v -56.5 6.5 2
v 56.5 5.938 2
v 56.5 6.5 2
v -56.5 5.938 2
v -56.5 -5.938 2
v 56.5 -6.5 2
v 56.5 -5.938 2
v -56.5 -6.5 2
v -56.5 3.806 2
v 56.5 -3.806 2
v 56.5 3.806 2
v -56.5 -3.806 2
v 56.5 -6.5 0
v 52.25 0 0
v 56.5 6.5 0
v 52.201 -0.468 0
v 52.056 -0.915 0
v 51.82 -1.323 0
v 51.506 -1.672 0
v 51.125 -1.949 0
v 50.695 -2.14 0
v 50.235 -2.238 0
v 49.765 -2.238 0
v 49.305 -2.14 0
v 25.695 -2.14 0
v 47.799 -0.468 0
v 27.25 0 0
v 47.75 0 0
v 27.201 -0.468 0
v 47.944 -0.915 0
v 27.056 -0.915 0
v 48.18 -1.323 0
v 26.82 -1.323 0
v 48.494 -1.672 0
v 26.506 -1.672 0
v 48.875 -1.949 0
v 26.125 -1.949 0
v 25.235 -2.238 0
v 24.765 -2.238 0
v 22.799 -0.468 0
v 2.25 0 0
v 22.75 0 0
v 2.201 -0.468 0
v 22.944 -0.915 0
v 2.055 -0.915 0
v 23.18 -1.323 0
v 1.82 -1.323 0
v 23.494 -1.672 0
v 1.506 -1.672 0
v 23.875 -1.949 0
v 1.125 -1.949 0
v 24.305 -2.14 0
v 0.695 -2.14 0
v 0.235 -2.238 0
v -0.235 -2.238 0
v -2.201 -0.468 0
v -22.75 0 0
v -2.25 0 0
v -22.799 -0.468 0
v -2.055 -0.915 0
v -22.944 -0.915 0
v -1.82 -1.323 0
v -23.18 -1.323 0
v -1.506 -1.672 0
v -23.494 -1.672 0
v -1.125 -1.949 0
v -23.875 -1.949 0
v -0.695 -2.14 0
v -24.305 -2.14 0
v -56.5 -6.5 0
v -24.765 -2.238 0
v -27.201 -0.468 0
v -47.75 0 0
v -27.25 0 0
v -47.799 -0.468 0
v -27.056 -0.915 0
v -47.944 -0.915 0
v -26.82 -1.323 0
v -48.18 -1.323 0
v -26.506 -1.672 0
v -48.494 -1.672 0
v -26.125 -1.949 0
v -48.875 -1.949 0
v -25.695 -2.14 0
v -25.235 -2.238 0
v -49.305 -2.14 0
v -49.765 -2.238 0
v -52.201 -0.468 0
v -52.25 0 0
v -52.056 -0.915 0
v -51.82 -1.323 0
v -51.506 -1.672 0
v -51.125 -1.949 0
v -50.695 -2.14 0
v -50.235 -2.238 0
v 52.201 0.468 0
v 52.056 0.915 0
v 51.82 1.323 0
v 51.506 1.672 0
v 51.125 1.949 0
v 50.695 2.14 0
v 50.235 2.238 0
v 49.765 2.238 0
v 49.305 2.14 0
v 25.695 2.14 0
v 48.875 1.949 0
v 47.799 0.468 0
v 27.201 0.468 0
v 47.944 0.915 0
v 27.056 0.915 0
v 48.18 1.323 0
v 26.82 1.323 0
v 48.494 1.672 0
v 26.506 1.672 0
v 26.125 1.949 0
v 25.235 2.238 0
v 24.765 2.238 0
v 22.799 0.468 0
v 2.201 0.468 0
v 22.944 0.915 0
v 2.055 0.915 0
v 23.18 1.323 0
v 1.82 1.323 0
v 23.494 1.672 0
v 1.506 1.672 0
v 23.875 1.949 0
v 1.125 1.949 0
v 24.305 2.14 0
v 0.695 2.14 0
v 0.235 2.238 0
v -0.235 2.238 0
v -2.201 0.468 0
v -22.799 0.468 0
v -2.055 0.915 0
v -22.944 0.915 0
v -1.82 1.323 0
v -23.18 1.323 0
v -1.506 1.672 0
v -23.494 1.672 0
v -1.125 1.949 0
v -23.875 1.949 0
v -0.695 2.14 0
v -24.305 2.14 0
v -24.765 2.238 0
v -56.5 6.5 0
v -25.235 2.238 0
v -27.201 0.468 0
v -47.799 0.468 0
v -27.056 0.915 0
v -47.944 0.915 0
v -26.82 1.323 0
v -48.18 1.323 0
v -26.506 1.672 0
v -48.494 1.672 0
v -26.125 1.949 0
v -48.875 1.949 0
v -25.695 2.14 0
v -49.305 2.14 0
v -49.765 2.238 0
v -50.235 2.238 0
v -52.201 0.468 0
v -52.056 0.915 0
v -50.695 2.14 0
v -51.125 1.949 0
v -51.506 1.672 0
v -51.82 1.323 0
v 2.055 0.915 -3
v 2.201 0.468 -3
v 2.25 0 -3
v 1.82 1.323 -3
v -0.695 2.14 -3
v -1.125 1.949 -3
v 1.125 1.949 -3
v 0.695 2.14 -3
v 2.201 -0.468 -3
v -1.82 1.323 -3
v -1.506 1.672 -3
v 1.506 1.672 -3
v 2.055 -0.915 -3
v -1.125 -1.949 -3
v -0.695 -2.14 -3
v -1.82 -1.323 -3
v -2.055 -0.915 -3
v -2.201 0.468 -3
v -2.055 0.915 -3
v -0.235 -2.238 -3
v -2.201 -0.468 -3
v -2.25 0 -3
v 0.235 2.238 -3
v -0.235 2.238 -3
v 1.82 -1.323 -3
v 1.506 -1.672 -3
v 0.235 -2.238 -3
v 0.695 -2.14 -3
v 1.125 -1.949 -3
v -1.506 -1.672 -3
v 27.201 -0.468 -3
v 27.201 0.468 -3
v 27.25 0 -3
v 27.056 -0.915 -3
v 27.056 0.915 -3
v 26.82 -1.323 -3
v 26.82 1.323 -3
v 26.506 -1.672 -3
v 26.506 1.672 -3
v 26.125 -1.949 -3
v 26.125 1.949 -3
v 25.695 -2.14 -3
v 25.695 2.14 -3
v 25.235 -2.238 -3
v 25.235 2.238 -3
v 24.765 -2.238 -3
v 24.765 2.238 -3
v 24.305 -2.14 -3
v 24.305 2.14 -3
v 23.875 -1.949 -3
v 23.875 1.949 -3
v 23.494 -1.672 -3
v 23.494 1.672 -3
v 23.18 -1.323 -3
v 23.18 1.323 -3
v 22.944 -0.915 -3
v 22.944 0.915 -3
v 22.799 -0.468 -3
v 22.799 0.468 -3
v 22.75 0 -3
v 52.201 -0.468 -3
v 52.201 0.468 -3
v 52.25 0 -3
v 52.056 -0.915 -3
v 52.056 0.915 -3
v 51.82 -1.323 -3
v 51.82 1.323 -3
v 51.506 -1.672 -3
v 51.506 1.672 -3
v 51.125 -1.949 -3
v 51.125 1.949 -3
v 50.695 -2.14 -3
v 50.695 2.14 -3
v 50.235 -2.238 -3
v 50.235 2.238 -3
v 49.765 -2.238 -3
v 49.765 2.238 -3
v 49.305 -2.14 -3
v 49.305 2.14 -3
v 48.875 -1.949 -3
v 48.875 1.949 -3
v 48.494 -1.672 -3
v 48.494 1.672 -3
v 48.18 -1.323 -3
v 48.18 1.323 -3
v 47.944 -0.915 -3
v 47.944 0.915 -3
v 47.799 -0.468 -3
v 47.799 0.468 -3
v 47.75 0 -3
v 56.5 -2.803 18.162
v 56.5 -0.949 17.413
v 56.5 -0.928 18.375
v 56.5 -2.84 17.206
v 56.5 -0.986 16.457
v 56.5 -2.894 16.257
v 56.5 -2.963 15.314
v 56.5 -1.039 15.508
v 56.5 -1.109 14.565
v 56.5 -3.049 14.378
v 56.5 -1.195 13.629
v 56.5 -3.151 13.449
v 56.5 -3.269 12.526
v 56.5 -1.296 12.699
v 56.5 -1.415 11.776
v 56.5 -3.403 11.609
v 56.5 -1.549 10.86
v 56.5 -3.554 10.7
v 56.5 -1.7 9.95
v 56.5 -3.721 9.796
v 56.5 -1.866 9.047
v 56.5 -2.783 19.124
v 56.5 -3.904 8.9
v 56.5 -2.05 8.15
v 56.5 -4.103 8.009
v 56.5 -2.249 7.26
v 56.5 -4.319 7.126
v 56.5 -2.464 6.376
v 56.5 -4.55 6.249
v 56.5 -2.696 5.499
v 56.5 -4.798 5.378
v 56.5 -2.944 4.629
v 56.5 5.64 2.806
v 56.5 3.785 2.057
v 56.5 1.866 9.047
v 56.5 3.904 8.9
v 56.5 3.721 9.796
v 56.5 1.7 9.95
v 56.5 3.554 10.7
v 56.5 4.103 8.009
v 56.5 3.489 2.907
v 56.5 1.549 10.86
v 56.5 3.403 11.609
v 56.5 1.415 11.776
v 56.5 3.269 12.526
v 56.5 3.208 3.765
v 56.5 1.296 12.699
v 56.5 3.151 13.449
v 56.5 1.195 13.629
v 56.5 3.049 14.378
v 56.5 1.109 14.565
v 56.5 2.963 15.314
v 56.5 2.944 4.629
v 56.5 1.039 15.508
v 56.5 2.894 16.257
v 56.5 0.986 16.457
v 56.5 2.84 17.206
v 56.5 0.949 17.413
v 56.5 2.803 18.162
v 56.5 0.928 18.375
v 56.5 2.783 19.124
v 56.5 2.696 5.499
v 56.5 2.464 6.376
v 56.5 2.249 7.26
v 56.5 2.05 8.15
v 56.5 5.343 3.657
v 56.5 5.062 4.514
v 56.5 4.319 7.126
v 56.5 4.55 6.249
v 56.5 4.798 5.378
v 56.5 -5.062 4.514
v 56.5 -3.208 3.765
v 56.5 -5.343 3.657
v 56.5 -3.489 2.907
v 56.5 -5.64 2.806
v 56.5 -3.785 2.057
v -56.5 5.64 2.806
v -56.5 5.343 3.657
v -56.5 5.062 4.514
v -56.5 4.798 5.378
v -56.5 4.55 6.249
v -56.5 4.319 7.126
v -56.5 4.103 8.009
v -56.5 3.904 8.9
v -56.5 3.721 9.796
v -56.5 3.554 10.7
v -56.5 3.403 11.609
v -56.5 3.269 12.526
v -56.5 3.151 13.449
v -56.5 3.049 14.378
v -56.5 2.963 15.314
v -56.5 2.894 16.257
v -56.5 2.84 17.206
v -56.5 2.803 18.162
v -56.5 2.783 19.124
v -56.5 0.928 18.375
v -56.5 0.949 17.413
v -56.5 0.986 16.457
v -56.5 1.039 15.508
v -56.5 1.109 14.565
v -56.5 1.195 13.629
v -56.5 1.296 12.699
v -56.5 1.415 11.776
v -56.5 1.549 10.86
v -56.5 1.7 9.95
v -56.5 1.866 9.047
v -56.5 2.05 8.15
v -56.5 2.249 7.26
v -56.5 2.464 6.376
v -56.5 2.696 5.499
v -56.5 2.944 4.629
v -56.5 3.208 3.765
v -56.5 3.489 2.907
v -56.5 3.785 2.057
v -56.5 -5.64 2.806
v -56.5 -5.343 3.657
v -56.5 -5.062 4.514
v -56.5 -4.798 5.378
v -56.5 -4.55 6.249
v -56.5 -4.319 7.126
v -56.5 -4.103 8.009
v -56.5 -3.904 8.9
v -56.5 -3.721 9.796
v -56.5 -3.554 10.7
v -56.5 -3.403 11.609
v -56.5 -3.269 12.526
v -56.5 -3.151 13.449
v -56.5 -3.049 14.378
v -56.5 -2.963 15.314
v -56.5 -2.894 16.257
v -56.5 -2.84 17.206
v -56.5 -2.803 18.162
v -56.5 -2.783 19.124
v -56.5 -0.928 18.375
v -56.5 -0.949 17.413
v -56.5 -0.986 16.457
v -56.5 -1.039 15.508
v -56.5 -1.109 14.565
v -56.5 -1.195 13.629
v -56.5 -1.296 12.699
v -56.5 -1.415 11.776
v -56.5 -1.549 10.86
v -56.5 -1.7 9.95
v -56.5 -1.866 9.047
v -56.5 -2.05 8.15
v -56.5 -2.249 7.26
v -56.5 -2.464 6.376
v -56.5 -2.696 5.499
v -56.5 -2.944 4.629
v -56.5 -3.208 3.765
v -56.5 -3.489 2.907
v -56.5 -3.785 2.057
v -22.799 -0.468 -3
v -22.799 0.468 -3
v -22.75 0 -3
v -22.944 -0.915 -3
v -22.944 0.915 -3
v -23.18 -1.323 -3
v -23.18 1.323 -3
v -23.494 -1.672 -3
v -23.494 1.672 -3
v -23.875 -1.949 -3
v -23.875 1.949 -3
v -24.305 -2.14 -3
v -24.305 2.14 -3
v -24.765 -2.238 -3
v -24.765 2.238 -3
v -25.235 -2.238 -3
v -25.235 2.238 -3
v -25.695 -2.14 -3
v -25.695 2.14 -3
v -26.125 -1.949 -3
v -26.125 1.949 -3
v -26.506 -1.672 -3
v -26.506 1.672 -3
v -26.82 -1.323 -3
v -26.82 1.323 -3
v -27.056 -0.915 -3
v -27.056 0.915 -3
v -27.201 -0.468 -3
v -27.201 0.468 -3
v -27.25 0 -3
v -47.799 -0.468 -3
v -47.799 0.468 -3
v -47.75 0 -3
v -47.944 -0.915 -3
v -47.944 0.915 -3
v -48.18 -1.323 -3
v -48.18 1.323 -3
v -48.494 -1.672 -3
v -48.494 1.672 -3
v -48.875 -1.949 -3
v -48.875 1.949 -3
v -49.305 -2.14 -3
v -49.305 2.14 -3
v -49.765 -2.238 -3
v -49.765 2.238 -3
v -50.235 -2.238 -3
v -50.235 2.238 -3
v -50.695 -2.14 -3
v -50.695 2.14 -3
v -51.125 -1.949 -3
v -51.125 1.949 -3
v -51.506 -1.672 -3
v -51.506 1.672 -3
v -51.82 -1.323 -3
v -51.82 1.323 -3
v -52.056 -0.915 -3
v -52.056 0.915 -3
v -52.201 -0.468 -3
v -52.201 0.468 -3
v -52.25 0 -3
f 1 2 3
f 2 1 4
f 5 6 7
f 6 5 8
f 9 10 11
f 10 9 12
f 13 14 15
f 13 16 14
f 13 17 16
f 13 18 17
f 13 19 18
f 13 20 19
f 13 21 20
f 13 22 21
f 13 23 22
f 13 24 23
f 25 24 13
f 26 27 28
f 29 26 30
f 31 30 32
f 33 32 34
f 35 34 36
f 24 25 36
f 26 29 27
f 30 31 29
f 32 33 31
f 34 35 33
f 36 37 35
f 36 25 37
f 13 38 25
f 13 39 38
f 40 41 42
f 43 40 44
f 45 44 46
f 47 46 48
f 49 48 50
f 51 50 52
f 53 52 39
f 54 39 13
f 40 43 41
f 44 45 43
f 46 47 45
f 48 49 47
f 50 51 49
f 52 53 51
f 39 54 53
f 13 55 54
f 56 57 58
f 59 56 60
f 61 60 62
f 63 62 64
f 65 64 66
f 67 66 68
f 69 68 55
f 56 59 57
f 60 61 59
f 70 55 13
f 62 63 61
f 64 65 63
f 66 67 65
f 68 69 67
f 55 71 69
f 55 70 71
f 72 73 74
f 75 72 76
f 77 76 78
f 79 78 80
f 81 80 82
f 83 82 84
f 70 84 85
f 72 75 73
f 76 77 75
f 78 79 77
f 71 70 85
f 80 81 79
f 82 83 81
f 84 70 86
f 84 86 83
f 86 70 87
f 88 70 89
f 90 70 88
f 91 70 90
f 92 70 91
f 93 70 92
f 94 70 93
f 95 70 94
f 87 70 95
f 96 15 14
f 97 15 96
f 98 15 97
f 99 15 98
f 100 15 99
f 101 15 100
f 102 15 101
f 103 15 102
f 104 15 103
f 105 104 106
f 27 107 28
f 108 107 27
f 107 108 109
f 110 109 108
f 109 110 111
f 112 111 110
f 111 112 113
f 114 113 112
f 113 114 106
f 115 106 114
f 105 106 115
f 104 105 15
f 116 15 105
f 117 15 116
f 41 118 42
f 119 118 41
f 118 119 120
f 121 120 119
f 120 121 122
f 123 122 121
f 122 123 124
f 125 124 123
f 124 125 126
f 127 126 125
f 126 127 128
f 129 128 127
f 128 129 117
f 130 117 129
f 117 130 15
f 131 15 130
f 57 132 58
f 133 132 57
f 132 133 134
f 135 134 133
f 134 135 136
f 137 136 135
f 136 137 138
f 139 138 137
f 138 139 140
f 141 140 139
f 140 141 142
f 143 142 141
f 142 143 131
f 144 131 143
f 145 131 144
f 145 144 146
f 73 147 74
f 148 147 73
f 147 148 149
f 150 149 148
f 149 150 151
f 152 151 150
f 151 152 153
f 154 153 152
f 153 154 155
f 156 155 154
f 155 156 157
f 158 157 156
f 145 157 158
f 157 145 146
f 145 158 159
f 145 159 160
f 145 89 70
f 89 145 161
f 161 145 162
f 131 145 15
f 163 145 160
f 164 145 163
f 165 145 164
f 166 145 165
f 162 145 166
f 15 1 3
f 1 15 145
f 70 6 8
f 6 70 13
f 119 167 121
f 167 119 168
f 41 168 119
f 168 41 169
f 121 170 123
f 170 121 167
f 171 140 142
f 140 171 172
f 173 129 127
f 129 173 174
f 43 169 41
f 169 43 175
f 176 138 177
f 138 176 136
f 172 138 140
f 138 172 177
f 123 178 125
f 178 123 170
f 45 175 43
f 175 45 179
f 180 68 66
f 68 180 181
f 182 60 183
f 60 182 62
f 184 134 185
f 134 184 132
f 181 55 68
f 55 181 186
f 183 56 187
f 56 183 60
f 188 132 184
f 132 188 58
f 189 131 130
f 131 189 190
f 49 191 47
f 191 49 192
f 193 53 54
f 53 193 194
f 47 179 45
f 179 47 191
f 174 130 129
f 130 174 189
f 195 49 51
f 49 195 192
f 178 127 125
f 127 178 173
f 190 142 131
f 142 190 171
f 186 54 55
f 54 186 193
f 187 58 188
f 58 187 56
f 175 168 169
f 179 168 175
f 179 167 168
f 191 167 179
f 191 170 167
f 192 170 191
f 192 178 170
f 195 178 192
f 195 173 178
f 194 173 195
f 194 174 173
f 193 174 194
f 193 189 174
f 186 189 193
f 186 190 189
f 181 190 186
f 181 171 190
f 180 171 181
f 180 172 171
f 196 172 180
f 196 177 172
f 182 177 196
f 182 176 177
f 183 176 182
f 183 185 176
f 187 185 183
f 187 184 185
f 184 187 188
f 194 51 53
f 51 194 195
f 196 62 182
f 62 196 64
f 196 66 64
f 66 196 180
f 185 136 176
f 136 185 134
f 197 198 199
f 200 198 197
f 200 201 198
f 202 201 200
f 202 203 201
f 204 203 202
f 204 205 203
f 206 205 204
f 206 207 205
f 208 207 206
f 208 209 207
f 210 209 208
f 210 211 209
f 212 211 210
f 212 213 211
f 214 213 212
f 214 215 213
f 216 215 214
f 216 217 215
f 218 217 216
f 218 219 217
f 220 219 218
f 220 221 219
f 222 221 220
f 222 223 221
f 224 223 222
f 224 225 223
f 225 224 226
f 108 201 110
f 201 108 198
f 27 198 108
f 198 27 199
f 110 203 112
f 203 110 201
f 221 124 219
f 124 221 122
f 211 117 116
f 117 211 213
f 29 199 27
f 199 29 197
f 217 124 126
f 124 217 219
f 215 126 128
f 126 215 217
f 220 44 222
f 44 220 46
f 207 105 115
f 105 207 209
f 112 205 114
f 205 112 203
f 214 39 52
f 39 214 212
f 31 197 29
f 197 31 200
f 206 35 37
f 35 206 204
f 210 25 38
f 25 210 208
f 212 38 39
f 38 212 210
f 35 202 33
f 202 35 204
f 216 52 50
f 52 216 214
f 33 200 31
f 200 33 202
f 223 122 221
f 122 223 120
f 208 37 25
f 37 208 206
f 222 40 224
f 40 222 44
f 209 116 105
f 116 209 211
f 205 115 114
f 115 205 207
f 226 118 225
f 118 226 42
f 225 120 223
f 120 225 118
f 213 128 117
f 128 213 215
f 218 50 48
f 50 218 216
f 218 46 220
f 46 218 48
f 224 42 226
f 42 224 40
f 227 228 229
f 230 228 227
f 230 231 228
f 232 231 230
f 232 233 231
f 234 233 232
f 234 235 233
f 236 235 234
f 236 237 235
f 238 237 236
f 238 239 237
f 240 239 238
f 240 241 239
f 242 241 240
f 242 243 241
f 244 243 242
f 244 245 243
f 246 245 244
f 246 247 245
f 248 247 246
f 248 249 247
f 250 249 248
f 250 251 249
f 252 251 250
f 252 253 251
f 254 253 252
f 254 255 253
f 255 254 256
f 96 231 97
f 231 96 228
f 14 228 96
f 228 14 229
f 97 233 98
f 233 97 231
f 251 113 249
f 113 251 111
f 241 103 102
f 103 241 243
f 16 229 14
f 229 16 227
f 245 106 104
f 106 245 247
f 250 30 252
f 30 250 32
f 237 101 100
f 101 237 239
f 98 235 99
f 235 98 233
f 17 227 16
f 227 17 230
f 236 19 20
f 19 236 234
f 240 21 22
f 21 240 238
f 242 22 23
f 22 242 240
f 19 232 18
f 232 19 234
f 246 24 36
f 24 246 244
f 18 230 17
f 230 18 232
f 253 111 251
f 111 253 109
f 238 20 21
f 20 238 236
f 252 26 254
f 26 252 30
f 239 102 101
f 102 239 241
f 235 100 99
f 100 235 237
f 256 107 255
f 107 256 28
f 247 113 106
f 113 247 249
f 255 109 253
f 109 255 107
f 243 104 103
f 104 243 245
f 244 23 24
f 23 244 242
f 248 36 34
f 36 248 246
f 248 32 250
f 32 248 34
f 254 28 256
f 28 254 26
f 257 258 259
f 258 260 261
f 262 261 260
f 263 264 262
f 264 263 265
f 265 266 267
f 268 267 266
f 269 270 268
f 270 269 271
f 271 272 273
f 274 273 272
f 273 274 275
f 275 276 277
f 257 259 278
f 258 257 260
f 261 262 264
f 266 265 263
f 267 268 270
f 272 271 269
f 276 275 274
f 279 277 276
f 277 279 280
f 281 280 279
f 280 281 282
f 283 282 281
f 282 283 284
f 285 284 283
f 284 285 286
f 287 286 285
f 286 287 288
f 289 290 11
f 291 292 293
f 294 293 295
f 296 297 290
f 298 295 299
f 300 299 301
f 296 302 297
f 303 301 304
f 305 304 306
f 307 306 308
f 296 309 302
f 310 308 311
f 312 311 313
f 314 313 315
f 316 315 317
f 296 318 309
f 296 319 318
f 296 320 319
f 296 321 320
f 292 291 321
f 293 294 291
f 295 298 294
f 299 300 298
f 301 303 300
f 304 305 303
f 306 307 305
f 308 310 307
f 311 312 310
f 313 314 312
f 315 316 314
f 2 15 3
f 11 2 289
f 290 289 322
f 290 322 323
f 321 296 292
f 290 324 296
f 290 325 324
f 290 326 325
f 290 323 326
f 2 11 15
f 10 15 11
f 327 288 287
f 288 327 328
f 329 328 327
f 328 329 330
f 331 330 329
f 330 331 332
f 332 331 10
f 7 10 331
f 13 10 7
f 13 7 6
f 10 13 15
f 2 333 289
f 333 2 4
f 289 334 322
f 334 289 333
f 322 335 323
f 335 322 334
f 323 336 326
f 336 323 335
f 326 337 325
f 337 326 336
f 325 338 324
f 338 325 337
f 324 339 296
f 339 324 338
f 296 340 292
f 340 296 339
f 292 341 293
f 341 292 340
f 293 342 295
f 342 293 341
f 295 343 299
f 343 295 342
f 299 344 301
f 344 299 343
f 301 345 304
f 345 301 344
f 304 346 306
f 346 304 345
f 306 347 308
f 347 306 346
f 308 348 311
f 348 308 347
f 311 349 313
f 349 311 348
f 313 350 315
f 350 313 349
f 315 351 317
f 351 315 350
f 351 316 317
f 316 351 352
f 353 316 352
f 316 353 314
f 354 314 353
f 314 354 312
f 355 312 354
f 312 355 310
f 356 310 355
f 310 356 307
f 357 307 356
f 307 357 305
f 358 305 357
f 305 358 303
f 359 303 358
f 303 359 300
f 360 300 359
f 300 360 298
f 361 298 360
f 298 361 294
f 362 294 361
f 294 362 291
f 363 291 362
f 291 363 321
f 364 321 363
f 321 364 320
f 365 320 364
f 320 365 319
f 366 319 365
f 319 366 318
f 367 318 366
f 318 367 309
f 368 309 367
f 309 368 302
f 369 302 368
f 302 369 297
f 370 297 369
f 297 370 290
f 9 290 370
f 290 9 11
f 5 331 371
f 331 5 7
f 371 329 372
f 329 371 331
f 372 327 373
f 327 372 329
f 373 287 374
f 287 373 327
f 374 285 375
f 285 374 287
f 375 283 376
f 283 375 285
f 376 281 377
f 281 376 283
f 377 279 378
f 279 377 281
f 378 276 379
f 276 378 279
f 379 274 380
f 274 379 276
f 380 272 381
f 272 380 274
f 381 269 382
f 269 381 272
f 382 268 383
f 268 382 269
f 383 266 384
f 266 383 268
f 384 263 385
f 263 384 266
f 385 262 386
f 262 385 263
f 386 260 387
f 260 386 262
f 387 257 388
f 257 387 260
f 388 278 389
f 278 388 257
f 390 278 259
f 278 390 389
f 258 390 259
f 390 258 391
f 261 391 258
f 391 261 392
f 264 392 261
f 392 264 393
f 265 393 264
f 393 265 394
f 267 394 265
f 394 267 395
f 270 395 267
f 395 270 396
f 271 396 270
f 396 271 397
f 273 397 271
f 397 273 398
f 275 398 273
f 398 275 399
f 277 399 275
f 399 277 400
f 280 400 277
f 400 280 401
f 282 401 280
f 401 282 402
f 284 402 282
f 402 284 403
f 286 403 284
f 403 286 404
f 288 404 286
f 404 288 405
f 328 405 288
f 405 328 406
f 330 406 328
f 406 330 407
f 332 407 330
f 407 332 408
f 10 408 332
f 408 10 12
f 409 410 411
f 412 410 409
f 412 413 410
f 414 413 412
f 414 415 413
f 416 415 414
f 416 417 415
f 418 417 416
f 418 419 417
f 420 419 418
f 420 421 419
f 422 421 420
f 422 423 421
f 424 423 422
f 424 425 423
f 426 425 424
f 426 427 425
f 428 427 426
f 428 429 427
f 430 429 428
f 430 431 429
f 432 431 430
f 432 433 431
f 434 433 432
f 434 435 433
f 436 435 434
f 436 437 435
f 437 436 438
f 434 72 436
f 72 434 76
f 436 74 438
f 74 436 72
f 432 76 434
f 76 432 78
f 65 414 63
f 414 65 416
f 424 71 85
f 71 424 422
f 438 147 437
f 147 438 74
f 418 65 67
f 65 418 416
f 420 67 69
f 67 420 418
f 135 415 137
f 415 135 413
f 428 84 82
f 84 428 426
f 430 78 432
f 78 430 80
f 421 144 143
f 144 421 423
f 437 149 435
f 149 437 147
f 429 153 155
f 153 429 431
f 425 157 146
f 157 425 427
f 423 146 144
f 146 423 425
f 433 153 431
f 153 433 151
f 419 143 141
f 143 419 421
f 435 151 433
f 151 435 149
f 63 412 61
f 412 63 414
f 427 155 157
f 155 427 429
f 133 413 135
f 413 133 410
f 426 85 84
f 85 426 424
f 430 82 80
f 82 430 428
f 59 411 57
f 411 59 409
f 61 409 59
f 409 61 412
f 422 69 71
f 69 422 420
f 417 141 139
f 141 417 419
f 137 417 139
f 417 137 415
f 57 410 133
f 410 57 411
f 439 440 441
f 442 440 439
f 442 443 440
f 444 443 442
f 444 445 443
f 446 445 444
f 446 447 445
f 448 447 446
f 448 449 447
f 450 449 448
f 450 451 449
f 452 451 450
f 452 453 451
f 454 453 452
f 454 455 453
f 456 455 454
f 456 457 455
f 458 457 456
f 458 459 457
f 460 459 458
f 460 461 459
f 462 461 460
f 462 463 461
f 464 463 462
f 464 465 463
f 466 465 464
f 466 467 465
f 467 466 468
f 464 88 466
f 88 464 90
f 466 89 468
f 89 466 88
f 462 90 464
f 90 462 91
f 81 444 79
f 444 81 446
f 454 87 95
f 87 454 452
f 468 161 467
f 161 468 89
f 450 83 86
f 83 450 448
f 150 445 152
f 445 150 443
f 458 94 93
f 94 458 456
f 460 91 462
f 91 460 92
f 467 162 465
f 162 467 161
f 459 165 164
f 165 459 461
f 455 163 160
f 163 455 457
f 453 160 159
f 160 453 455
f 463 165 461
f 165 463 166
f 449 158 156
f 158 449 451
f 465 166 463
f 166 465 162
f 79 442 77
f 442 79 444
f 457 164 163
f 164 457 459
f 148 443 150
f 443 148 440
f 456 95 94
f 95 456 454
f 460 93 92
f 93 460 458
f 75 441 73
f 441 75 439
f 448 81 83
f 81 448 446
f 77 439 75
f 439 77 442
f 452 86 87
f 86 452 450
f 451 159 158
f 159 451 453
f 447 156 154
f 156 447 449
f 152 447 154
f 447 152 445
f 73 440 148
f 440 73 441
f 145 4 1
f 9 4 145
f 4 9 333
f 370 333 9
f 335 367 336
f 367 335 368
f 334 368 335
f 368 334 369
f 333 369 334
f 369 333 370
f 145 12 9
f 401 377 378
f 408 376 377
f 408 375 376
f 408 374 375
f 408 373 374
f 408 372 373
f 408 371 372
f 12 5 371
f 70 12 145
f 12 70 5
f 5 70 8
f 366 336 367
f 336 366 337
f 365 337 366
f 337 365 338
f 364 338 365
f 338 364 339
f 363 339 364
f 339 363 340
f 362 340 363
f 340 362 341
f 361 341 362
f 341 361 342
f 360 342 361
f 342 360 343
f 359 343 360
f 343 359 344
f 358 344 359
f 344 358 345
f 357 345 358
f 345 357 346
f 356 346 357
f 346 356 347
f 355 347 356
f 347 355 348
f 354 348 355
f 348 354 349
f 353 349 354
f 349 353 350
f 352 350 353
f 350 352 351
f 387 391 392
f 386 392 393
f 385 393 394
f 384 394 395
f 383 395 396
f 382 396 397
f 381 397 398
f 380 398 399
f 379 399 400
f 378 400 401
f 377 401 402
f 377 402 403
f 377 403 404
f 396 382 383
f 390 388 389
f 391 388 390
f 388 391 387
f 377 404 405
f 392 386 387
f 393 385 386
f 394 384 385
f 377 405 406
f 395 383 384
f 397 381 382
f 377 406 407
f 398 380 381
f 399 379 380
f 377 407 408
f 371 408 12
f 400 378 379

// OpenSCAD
// file: common.scad
CENTER_SIZE = 9;
SLEEVE_REACH = 56.5;
GROOVE_WIDTH = 9;
WALL_HEIGHT = 10;
WALL_THICKNESS = 2;
BASE_THICKNESS = 2;
TOTAL_WIDTH = GROOVE_WIDTH + 2 * WALL_THICKNESS;
SLEEVE_LENGTH = SLEEVE_REACH - CENTER_SIZE/2;
DOWEL_DIAMETER = 4.5;
DOWEL_DEPTH = 3;
CARDBOARD_THICKNESS = 2;
GROOVE_BOTTOM = CARDBOARD_THICKNESS;
CURVE_POWER = 2;
CURVE_POINTS = 20;
TILT_ANGLE_EXTRA = 5;
FLEXIBLE_WALL_HEIGHT = WALL_HEIGHT * 2;
function wall_curve(z) =
    GROOVE_BOTTOM/2 + (GROOVE_WIDTH/2 - GROOVE_BOTTOM/2) * pow(z/(FLEXIBLE_WALL_HEIGHT - BASE_THICKNESS), CURVE_POWER);
module curved_wall_profile(side) {
    wall_h = FLEXIBLE_WALL_HEIGHT - BASE_THICKNESS;
    points_inner = [for (i = [0:CURVE_POINTS])
        [wall_curve(i * wall_h / CURVE_POINTS) * side,
         i * wall_h / CURVE_POINTS]
    ];
    points_outer = [for (i = [0:CURVE_POINTS])
        [(wall_curve(i * wall_h / CURVE_POINTS) + WALL_THICKNESS) * side,
         i * wall_h / CURVE_POINTS]
    ];
    all_points = concat(
        [[points_inner[0][0], 0]],
        points_inner,
        [points_outer[len(points_outer)-1]],
        [for (i = [len(points_outer)-1:-1:0]) points_outer[i]],
        [[points_outer[0][0], 0]]
    );
    polygon(all_points);
}
module draw_regular_wall_base(width) {
    translate([0, 0, BASE_THICKNESS])
        cube([width, WALL_THICKNESS, WALL_HEIGHT - BASE_THICKNESS]);
}
module draw_flexible_wall_base(width) {
    tilt_angle = atan((GROOVE_WIDTH/2 - GROOVE_BOTTOM/2) / (FLEXIBLE_WALL_HEIGHT - BASE_THICKNESS)) + TILT_ANGLE_EXTRA;
    rotate([0, 0, 90])
        rotate([tilt_angle + 6, 0, 0])
            rotate([90, 0, 90])
                linear_extrude(height = width)
                    curved_wall_profile(1);
}
module draw_center_base(with_dowel = false) {
    union() {
        translate([-TOTAL_WIDTH/2, -TOTAL_WIDTH/2, 0])
            cube([TOTAL_WIDTH, TOTAL_WIDTH, BASE_THICKNESS]);
        if (with_dowel) {
            translate([0, 0, -DOWEL_DEPTH])
                cylinder(h=DOWEL_DEPTH, d=DOWEL_DIAMETER, $fn=30);
        }
    }
}
module place_regular_center_wall(side) {
    if (side == 0) {
        translate([CENTER_SIZE/2 + WALL_THICKNESS, -TOTAL_WIDTH/2, 0])
            rotate([0, 0, 90])
                draw_regular_wall_base(TOTAL_WIDTH);
    } else if (side == 1) {
        translate([-TOTAL_WIDTH/2, CENTER_SIZE/2, 0])
            draw_regular_wall_base(TOTAL_WIDTH);
    } else if (side == 2) {
        translate([-CENTER_SIZE/2, -TOTAL_WIDTH/2, 0])
            rotate([0, 0, 90])
                draw_regular_wall_base(TOTAL_WIDTH);
    } else if (side == 3) {
        translate([-TOTAL_WIDTH/2, -CENTER_SIZE/2 - WALL_THICKNESS, 0])
            draw_regular_wall_base(TOTAL_WIDTH);
    }
}
module place_flexible_center_wall(side) {
    if (side == 0) {
        translate([CENTER_SIZE/2 - WALL_THICKNESS/2, TOTAL_WIDTH/2, 0])
            rotate([0, 0, 180])
                draw_flexible_wall_base(TOTAL_WIDTH);
    } else if (side == 1) {
        translate([-TOTAL_WIDTH/2, CENTER_SIZE/2 - WALL_THICKNESS/2, 0])
            rotate([0, 0, 270])
                draw_flexible_wall_base(TOTAL_WIDTH);
    } else if (side == 2) {
        translate([-CENTER_SIZE/2 + WALL_THICKNESS/2, -TOTAL_WIDTH/2, 0])
            draw_flexible_wall_base(TOTAL_WIDTH);
    } else if (side == 3) {
        translate([CENTER_SIZE/2 + WALL_THICKNESS, -TOTAL_WIDTH/2 + WALL_THICKNESS + WALL_THICKNESS/2, 0])
            rotate([0, 0, 90])
                draw_flexible_wall_base(TOTAL_WIDTH);
    }
}
module place_center_wall(side, wall_type = "regular") {
    if (wall_type == "regular") {
        place_regular_center_wall(side);
    } else if (wall_type == "flexible") {
        place_flexible_center_wall(side);
    }
}
module draw_sleeve_base(with_dowel = false) {
    union() {
        translate([0, -TOTAL_WIDTH/2, 0])
            cube([SLEEVE_LENGTH, TOTAL_WIDTH, BASE_THICKNESS]);
        if (with_dowel) {
            translate([25 - CENTER_SIZE/2, 0, -DOWEL_DEPTH])
                cylinder(h=DOWEL_DEPTH, d=DOWEL_DIAMETER, $fn=30);
            translate([50 - CENTER_SIZE/2, 0, -DOWEL_DEPTH])
                cylinder(h=DOWEL_DEPTH, d=DOWEL_DIAMETER, $fn=30);
        }
    }
}
module draw_regular_sleeve_wall(wall_side) {
    y_offset = (wall_side == "left") ? -TOTAL_WIDTH/2 : TOTAL_WIDTH/2 - WALL_THICKNESS;
    translate([0, y_offset, 0])
        draw_regular_wall_base(SLEEVE_LENGTH);
}
module draw_flexible_sleeve_wall(side) {
    if (side == "left") {
        translate([0, TOTAL_WIDTH/2 - WALL_THICKNESS/2 - WALL_THICKNESS, 0])
            rotate([0, 0, 270])
                draw_flexible_wall_base(SLEEVE_LENGTH);
    } else if (side == "right") {
        translate([SLEEVE_LENGTH, -TOTAL_WIDTH/2 + WALL_THICKNESS + WALL_THICKNESS/2, 0])
            rotate([0, 0, 90])
                draw_flexible_wall_base(SLEEVE_LENGTH);
    }
}
module draw_sleeve_wall(wall_side, wall_type = "regular") {
    if (wall_type == "regular") {
        draw_regular_sleeve_wall(wall_side);
    } else if (wall_type == "flexible") {
        draw_flexible_sleeve_wall(wall_side);
    }
}
module draw_full_sleeve(with_dowel = false, wall_type = "regular") {
    union() {
        draw_sleeve_base(with_dowel);
        draw_sleeve_wall("left", wall_type);
        draw_sleeve_wall("right", wall_type);
    }
}
module place_sleeve(side, with_dowel = false, wall_type = "regular") {
    if (side == 0) {
        translate([CENTER_SIZE/2, 0, 0])
            draw_full_sleeve(with_dowel, wall_type);
    } else if (side == 1) {
        rotate([0, 0, 90])
            translate([CENTER_SIZE/2, 0, 0])
                draw_full_sleeve(with_dowel, wall_type);
    } else if (side == 2) {
        rotate([0, 0, 180])
            translate([CENTER_SIZE/2, 0, 0])
                draw_full_sleeve(with_dowel, wall_type);
    } else if (side == 3) {
        rotate([0, 0, 270])
            translate([CENTER_SIZE/2, 0, 0])
                draw_full_sleeve(with_dowel, wall_type);
    }
}
module add_dowel(x, y, dowel_diameter, dowel_depth) {
    translate([x, y, -dowel_depth])
        cylinder(h=dowel_depth, d=dowel_diameter, $fn=30);
}
// main file
use <common.scad>

union() {
    draw_center_base(with_dowel = true);
    place_center_wall(1, "flexible");
    place_center_wall(3, "flexible");
    place_sleeve(0, with_dowel = true, wall_type = "flexible");
    place_sleeve(2, with_dowel = true, wall_type = "flexible");
}
